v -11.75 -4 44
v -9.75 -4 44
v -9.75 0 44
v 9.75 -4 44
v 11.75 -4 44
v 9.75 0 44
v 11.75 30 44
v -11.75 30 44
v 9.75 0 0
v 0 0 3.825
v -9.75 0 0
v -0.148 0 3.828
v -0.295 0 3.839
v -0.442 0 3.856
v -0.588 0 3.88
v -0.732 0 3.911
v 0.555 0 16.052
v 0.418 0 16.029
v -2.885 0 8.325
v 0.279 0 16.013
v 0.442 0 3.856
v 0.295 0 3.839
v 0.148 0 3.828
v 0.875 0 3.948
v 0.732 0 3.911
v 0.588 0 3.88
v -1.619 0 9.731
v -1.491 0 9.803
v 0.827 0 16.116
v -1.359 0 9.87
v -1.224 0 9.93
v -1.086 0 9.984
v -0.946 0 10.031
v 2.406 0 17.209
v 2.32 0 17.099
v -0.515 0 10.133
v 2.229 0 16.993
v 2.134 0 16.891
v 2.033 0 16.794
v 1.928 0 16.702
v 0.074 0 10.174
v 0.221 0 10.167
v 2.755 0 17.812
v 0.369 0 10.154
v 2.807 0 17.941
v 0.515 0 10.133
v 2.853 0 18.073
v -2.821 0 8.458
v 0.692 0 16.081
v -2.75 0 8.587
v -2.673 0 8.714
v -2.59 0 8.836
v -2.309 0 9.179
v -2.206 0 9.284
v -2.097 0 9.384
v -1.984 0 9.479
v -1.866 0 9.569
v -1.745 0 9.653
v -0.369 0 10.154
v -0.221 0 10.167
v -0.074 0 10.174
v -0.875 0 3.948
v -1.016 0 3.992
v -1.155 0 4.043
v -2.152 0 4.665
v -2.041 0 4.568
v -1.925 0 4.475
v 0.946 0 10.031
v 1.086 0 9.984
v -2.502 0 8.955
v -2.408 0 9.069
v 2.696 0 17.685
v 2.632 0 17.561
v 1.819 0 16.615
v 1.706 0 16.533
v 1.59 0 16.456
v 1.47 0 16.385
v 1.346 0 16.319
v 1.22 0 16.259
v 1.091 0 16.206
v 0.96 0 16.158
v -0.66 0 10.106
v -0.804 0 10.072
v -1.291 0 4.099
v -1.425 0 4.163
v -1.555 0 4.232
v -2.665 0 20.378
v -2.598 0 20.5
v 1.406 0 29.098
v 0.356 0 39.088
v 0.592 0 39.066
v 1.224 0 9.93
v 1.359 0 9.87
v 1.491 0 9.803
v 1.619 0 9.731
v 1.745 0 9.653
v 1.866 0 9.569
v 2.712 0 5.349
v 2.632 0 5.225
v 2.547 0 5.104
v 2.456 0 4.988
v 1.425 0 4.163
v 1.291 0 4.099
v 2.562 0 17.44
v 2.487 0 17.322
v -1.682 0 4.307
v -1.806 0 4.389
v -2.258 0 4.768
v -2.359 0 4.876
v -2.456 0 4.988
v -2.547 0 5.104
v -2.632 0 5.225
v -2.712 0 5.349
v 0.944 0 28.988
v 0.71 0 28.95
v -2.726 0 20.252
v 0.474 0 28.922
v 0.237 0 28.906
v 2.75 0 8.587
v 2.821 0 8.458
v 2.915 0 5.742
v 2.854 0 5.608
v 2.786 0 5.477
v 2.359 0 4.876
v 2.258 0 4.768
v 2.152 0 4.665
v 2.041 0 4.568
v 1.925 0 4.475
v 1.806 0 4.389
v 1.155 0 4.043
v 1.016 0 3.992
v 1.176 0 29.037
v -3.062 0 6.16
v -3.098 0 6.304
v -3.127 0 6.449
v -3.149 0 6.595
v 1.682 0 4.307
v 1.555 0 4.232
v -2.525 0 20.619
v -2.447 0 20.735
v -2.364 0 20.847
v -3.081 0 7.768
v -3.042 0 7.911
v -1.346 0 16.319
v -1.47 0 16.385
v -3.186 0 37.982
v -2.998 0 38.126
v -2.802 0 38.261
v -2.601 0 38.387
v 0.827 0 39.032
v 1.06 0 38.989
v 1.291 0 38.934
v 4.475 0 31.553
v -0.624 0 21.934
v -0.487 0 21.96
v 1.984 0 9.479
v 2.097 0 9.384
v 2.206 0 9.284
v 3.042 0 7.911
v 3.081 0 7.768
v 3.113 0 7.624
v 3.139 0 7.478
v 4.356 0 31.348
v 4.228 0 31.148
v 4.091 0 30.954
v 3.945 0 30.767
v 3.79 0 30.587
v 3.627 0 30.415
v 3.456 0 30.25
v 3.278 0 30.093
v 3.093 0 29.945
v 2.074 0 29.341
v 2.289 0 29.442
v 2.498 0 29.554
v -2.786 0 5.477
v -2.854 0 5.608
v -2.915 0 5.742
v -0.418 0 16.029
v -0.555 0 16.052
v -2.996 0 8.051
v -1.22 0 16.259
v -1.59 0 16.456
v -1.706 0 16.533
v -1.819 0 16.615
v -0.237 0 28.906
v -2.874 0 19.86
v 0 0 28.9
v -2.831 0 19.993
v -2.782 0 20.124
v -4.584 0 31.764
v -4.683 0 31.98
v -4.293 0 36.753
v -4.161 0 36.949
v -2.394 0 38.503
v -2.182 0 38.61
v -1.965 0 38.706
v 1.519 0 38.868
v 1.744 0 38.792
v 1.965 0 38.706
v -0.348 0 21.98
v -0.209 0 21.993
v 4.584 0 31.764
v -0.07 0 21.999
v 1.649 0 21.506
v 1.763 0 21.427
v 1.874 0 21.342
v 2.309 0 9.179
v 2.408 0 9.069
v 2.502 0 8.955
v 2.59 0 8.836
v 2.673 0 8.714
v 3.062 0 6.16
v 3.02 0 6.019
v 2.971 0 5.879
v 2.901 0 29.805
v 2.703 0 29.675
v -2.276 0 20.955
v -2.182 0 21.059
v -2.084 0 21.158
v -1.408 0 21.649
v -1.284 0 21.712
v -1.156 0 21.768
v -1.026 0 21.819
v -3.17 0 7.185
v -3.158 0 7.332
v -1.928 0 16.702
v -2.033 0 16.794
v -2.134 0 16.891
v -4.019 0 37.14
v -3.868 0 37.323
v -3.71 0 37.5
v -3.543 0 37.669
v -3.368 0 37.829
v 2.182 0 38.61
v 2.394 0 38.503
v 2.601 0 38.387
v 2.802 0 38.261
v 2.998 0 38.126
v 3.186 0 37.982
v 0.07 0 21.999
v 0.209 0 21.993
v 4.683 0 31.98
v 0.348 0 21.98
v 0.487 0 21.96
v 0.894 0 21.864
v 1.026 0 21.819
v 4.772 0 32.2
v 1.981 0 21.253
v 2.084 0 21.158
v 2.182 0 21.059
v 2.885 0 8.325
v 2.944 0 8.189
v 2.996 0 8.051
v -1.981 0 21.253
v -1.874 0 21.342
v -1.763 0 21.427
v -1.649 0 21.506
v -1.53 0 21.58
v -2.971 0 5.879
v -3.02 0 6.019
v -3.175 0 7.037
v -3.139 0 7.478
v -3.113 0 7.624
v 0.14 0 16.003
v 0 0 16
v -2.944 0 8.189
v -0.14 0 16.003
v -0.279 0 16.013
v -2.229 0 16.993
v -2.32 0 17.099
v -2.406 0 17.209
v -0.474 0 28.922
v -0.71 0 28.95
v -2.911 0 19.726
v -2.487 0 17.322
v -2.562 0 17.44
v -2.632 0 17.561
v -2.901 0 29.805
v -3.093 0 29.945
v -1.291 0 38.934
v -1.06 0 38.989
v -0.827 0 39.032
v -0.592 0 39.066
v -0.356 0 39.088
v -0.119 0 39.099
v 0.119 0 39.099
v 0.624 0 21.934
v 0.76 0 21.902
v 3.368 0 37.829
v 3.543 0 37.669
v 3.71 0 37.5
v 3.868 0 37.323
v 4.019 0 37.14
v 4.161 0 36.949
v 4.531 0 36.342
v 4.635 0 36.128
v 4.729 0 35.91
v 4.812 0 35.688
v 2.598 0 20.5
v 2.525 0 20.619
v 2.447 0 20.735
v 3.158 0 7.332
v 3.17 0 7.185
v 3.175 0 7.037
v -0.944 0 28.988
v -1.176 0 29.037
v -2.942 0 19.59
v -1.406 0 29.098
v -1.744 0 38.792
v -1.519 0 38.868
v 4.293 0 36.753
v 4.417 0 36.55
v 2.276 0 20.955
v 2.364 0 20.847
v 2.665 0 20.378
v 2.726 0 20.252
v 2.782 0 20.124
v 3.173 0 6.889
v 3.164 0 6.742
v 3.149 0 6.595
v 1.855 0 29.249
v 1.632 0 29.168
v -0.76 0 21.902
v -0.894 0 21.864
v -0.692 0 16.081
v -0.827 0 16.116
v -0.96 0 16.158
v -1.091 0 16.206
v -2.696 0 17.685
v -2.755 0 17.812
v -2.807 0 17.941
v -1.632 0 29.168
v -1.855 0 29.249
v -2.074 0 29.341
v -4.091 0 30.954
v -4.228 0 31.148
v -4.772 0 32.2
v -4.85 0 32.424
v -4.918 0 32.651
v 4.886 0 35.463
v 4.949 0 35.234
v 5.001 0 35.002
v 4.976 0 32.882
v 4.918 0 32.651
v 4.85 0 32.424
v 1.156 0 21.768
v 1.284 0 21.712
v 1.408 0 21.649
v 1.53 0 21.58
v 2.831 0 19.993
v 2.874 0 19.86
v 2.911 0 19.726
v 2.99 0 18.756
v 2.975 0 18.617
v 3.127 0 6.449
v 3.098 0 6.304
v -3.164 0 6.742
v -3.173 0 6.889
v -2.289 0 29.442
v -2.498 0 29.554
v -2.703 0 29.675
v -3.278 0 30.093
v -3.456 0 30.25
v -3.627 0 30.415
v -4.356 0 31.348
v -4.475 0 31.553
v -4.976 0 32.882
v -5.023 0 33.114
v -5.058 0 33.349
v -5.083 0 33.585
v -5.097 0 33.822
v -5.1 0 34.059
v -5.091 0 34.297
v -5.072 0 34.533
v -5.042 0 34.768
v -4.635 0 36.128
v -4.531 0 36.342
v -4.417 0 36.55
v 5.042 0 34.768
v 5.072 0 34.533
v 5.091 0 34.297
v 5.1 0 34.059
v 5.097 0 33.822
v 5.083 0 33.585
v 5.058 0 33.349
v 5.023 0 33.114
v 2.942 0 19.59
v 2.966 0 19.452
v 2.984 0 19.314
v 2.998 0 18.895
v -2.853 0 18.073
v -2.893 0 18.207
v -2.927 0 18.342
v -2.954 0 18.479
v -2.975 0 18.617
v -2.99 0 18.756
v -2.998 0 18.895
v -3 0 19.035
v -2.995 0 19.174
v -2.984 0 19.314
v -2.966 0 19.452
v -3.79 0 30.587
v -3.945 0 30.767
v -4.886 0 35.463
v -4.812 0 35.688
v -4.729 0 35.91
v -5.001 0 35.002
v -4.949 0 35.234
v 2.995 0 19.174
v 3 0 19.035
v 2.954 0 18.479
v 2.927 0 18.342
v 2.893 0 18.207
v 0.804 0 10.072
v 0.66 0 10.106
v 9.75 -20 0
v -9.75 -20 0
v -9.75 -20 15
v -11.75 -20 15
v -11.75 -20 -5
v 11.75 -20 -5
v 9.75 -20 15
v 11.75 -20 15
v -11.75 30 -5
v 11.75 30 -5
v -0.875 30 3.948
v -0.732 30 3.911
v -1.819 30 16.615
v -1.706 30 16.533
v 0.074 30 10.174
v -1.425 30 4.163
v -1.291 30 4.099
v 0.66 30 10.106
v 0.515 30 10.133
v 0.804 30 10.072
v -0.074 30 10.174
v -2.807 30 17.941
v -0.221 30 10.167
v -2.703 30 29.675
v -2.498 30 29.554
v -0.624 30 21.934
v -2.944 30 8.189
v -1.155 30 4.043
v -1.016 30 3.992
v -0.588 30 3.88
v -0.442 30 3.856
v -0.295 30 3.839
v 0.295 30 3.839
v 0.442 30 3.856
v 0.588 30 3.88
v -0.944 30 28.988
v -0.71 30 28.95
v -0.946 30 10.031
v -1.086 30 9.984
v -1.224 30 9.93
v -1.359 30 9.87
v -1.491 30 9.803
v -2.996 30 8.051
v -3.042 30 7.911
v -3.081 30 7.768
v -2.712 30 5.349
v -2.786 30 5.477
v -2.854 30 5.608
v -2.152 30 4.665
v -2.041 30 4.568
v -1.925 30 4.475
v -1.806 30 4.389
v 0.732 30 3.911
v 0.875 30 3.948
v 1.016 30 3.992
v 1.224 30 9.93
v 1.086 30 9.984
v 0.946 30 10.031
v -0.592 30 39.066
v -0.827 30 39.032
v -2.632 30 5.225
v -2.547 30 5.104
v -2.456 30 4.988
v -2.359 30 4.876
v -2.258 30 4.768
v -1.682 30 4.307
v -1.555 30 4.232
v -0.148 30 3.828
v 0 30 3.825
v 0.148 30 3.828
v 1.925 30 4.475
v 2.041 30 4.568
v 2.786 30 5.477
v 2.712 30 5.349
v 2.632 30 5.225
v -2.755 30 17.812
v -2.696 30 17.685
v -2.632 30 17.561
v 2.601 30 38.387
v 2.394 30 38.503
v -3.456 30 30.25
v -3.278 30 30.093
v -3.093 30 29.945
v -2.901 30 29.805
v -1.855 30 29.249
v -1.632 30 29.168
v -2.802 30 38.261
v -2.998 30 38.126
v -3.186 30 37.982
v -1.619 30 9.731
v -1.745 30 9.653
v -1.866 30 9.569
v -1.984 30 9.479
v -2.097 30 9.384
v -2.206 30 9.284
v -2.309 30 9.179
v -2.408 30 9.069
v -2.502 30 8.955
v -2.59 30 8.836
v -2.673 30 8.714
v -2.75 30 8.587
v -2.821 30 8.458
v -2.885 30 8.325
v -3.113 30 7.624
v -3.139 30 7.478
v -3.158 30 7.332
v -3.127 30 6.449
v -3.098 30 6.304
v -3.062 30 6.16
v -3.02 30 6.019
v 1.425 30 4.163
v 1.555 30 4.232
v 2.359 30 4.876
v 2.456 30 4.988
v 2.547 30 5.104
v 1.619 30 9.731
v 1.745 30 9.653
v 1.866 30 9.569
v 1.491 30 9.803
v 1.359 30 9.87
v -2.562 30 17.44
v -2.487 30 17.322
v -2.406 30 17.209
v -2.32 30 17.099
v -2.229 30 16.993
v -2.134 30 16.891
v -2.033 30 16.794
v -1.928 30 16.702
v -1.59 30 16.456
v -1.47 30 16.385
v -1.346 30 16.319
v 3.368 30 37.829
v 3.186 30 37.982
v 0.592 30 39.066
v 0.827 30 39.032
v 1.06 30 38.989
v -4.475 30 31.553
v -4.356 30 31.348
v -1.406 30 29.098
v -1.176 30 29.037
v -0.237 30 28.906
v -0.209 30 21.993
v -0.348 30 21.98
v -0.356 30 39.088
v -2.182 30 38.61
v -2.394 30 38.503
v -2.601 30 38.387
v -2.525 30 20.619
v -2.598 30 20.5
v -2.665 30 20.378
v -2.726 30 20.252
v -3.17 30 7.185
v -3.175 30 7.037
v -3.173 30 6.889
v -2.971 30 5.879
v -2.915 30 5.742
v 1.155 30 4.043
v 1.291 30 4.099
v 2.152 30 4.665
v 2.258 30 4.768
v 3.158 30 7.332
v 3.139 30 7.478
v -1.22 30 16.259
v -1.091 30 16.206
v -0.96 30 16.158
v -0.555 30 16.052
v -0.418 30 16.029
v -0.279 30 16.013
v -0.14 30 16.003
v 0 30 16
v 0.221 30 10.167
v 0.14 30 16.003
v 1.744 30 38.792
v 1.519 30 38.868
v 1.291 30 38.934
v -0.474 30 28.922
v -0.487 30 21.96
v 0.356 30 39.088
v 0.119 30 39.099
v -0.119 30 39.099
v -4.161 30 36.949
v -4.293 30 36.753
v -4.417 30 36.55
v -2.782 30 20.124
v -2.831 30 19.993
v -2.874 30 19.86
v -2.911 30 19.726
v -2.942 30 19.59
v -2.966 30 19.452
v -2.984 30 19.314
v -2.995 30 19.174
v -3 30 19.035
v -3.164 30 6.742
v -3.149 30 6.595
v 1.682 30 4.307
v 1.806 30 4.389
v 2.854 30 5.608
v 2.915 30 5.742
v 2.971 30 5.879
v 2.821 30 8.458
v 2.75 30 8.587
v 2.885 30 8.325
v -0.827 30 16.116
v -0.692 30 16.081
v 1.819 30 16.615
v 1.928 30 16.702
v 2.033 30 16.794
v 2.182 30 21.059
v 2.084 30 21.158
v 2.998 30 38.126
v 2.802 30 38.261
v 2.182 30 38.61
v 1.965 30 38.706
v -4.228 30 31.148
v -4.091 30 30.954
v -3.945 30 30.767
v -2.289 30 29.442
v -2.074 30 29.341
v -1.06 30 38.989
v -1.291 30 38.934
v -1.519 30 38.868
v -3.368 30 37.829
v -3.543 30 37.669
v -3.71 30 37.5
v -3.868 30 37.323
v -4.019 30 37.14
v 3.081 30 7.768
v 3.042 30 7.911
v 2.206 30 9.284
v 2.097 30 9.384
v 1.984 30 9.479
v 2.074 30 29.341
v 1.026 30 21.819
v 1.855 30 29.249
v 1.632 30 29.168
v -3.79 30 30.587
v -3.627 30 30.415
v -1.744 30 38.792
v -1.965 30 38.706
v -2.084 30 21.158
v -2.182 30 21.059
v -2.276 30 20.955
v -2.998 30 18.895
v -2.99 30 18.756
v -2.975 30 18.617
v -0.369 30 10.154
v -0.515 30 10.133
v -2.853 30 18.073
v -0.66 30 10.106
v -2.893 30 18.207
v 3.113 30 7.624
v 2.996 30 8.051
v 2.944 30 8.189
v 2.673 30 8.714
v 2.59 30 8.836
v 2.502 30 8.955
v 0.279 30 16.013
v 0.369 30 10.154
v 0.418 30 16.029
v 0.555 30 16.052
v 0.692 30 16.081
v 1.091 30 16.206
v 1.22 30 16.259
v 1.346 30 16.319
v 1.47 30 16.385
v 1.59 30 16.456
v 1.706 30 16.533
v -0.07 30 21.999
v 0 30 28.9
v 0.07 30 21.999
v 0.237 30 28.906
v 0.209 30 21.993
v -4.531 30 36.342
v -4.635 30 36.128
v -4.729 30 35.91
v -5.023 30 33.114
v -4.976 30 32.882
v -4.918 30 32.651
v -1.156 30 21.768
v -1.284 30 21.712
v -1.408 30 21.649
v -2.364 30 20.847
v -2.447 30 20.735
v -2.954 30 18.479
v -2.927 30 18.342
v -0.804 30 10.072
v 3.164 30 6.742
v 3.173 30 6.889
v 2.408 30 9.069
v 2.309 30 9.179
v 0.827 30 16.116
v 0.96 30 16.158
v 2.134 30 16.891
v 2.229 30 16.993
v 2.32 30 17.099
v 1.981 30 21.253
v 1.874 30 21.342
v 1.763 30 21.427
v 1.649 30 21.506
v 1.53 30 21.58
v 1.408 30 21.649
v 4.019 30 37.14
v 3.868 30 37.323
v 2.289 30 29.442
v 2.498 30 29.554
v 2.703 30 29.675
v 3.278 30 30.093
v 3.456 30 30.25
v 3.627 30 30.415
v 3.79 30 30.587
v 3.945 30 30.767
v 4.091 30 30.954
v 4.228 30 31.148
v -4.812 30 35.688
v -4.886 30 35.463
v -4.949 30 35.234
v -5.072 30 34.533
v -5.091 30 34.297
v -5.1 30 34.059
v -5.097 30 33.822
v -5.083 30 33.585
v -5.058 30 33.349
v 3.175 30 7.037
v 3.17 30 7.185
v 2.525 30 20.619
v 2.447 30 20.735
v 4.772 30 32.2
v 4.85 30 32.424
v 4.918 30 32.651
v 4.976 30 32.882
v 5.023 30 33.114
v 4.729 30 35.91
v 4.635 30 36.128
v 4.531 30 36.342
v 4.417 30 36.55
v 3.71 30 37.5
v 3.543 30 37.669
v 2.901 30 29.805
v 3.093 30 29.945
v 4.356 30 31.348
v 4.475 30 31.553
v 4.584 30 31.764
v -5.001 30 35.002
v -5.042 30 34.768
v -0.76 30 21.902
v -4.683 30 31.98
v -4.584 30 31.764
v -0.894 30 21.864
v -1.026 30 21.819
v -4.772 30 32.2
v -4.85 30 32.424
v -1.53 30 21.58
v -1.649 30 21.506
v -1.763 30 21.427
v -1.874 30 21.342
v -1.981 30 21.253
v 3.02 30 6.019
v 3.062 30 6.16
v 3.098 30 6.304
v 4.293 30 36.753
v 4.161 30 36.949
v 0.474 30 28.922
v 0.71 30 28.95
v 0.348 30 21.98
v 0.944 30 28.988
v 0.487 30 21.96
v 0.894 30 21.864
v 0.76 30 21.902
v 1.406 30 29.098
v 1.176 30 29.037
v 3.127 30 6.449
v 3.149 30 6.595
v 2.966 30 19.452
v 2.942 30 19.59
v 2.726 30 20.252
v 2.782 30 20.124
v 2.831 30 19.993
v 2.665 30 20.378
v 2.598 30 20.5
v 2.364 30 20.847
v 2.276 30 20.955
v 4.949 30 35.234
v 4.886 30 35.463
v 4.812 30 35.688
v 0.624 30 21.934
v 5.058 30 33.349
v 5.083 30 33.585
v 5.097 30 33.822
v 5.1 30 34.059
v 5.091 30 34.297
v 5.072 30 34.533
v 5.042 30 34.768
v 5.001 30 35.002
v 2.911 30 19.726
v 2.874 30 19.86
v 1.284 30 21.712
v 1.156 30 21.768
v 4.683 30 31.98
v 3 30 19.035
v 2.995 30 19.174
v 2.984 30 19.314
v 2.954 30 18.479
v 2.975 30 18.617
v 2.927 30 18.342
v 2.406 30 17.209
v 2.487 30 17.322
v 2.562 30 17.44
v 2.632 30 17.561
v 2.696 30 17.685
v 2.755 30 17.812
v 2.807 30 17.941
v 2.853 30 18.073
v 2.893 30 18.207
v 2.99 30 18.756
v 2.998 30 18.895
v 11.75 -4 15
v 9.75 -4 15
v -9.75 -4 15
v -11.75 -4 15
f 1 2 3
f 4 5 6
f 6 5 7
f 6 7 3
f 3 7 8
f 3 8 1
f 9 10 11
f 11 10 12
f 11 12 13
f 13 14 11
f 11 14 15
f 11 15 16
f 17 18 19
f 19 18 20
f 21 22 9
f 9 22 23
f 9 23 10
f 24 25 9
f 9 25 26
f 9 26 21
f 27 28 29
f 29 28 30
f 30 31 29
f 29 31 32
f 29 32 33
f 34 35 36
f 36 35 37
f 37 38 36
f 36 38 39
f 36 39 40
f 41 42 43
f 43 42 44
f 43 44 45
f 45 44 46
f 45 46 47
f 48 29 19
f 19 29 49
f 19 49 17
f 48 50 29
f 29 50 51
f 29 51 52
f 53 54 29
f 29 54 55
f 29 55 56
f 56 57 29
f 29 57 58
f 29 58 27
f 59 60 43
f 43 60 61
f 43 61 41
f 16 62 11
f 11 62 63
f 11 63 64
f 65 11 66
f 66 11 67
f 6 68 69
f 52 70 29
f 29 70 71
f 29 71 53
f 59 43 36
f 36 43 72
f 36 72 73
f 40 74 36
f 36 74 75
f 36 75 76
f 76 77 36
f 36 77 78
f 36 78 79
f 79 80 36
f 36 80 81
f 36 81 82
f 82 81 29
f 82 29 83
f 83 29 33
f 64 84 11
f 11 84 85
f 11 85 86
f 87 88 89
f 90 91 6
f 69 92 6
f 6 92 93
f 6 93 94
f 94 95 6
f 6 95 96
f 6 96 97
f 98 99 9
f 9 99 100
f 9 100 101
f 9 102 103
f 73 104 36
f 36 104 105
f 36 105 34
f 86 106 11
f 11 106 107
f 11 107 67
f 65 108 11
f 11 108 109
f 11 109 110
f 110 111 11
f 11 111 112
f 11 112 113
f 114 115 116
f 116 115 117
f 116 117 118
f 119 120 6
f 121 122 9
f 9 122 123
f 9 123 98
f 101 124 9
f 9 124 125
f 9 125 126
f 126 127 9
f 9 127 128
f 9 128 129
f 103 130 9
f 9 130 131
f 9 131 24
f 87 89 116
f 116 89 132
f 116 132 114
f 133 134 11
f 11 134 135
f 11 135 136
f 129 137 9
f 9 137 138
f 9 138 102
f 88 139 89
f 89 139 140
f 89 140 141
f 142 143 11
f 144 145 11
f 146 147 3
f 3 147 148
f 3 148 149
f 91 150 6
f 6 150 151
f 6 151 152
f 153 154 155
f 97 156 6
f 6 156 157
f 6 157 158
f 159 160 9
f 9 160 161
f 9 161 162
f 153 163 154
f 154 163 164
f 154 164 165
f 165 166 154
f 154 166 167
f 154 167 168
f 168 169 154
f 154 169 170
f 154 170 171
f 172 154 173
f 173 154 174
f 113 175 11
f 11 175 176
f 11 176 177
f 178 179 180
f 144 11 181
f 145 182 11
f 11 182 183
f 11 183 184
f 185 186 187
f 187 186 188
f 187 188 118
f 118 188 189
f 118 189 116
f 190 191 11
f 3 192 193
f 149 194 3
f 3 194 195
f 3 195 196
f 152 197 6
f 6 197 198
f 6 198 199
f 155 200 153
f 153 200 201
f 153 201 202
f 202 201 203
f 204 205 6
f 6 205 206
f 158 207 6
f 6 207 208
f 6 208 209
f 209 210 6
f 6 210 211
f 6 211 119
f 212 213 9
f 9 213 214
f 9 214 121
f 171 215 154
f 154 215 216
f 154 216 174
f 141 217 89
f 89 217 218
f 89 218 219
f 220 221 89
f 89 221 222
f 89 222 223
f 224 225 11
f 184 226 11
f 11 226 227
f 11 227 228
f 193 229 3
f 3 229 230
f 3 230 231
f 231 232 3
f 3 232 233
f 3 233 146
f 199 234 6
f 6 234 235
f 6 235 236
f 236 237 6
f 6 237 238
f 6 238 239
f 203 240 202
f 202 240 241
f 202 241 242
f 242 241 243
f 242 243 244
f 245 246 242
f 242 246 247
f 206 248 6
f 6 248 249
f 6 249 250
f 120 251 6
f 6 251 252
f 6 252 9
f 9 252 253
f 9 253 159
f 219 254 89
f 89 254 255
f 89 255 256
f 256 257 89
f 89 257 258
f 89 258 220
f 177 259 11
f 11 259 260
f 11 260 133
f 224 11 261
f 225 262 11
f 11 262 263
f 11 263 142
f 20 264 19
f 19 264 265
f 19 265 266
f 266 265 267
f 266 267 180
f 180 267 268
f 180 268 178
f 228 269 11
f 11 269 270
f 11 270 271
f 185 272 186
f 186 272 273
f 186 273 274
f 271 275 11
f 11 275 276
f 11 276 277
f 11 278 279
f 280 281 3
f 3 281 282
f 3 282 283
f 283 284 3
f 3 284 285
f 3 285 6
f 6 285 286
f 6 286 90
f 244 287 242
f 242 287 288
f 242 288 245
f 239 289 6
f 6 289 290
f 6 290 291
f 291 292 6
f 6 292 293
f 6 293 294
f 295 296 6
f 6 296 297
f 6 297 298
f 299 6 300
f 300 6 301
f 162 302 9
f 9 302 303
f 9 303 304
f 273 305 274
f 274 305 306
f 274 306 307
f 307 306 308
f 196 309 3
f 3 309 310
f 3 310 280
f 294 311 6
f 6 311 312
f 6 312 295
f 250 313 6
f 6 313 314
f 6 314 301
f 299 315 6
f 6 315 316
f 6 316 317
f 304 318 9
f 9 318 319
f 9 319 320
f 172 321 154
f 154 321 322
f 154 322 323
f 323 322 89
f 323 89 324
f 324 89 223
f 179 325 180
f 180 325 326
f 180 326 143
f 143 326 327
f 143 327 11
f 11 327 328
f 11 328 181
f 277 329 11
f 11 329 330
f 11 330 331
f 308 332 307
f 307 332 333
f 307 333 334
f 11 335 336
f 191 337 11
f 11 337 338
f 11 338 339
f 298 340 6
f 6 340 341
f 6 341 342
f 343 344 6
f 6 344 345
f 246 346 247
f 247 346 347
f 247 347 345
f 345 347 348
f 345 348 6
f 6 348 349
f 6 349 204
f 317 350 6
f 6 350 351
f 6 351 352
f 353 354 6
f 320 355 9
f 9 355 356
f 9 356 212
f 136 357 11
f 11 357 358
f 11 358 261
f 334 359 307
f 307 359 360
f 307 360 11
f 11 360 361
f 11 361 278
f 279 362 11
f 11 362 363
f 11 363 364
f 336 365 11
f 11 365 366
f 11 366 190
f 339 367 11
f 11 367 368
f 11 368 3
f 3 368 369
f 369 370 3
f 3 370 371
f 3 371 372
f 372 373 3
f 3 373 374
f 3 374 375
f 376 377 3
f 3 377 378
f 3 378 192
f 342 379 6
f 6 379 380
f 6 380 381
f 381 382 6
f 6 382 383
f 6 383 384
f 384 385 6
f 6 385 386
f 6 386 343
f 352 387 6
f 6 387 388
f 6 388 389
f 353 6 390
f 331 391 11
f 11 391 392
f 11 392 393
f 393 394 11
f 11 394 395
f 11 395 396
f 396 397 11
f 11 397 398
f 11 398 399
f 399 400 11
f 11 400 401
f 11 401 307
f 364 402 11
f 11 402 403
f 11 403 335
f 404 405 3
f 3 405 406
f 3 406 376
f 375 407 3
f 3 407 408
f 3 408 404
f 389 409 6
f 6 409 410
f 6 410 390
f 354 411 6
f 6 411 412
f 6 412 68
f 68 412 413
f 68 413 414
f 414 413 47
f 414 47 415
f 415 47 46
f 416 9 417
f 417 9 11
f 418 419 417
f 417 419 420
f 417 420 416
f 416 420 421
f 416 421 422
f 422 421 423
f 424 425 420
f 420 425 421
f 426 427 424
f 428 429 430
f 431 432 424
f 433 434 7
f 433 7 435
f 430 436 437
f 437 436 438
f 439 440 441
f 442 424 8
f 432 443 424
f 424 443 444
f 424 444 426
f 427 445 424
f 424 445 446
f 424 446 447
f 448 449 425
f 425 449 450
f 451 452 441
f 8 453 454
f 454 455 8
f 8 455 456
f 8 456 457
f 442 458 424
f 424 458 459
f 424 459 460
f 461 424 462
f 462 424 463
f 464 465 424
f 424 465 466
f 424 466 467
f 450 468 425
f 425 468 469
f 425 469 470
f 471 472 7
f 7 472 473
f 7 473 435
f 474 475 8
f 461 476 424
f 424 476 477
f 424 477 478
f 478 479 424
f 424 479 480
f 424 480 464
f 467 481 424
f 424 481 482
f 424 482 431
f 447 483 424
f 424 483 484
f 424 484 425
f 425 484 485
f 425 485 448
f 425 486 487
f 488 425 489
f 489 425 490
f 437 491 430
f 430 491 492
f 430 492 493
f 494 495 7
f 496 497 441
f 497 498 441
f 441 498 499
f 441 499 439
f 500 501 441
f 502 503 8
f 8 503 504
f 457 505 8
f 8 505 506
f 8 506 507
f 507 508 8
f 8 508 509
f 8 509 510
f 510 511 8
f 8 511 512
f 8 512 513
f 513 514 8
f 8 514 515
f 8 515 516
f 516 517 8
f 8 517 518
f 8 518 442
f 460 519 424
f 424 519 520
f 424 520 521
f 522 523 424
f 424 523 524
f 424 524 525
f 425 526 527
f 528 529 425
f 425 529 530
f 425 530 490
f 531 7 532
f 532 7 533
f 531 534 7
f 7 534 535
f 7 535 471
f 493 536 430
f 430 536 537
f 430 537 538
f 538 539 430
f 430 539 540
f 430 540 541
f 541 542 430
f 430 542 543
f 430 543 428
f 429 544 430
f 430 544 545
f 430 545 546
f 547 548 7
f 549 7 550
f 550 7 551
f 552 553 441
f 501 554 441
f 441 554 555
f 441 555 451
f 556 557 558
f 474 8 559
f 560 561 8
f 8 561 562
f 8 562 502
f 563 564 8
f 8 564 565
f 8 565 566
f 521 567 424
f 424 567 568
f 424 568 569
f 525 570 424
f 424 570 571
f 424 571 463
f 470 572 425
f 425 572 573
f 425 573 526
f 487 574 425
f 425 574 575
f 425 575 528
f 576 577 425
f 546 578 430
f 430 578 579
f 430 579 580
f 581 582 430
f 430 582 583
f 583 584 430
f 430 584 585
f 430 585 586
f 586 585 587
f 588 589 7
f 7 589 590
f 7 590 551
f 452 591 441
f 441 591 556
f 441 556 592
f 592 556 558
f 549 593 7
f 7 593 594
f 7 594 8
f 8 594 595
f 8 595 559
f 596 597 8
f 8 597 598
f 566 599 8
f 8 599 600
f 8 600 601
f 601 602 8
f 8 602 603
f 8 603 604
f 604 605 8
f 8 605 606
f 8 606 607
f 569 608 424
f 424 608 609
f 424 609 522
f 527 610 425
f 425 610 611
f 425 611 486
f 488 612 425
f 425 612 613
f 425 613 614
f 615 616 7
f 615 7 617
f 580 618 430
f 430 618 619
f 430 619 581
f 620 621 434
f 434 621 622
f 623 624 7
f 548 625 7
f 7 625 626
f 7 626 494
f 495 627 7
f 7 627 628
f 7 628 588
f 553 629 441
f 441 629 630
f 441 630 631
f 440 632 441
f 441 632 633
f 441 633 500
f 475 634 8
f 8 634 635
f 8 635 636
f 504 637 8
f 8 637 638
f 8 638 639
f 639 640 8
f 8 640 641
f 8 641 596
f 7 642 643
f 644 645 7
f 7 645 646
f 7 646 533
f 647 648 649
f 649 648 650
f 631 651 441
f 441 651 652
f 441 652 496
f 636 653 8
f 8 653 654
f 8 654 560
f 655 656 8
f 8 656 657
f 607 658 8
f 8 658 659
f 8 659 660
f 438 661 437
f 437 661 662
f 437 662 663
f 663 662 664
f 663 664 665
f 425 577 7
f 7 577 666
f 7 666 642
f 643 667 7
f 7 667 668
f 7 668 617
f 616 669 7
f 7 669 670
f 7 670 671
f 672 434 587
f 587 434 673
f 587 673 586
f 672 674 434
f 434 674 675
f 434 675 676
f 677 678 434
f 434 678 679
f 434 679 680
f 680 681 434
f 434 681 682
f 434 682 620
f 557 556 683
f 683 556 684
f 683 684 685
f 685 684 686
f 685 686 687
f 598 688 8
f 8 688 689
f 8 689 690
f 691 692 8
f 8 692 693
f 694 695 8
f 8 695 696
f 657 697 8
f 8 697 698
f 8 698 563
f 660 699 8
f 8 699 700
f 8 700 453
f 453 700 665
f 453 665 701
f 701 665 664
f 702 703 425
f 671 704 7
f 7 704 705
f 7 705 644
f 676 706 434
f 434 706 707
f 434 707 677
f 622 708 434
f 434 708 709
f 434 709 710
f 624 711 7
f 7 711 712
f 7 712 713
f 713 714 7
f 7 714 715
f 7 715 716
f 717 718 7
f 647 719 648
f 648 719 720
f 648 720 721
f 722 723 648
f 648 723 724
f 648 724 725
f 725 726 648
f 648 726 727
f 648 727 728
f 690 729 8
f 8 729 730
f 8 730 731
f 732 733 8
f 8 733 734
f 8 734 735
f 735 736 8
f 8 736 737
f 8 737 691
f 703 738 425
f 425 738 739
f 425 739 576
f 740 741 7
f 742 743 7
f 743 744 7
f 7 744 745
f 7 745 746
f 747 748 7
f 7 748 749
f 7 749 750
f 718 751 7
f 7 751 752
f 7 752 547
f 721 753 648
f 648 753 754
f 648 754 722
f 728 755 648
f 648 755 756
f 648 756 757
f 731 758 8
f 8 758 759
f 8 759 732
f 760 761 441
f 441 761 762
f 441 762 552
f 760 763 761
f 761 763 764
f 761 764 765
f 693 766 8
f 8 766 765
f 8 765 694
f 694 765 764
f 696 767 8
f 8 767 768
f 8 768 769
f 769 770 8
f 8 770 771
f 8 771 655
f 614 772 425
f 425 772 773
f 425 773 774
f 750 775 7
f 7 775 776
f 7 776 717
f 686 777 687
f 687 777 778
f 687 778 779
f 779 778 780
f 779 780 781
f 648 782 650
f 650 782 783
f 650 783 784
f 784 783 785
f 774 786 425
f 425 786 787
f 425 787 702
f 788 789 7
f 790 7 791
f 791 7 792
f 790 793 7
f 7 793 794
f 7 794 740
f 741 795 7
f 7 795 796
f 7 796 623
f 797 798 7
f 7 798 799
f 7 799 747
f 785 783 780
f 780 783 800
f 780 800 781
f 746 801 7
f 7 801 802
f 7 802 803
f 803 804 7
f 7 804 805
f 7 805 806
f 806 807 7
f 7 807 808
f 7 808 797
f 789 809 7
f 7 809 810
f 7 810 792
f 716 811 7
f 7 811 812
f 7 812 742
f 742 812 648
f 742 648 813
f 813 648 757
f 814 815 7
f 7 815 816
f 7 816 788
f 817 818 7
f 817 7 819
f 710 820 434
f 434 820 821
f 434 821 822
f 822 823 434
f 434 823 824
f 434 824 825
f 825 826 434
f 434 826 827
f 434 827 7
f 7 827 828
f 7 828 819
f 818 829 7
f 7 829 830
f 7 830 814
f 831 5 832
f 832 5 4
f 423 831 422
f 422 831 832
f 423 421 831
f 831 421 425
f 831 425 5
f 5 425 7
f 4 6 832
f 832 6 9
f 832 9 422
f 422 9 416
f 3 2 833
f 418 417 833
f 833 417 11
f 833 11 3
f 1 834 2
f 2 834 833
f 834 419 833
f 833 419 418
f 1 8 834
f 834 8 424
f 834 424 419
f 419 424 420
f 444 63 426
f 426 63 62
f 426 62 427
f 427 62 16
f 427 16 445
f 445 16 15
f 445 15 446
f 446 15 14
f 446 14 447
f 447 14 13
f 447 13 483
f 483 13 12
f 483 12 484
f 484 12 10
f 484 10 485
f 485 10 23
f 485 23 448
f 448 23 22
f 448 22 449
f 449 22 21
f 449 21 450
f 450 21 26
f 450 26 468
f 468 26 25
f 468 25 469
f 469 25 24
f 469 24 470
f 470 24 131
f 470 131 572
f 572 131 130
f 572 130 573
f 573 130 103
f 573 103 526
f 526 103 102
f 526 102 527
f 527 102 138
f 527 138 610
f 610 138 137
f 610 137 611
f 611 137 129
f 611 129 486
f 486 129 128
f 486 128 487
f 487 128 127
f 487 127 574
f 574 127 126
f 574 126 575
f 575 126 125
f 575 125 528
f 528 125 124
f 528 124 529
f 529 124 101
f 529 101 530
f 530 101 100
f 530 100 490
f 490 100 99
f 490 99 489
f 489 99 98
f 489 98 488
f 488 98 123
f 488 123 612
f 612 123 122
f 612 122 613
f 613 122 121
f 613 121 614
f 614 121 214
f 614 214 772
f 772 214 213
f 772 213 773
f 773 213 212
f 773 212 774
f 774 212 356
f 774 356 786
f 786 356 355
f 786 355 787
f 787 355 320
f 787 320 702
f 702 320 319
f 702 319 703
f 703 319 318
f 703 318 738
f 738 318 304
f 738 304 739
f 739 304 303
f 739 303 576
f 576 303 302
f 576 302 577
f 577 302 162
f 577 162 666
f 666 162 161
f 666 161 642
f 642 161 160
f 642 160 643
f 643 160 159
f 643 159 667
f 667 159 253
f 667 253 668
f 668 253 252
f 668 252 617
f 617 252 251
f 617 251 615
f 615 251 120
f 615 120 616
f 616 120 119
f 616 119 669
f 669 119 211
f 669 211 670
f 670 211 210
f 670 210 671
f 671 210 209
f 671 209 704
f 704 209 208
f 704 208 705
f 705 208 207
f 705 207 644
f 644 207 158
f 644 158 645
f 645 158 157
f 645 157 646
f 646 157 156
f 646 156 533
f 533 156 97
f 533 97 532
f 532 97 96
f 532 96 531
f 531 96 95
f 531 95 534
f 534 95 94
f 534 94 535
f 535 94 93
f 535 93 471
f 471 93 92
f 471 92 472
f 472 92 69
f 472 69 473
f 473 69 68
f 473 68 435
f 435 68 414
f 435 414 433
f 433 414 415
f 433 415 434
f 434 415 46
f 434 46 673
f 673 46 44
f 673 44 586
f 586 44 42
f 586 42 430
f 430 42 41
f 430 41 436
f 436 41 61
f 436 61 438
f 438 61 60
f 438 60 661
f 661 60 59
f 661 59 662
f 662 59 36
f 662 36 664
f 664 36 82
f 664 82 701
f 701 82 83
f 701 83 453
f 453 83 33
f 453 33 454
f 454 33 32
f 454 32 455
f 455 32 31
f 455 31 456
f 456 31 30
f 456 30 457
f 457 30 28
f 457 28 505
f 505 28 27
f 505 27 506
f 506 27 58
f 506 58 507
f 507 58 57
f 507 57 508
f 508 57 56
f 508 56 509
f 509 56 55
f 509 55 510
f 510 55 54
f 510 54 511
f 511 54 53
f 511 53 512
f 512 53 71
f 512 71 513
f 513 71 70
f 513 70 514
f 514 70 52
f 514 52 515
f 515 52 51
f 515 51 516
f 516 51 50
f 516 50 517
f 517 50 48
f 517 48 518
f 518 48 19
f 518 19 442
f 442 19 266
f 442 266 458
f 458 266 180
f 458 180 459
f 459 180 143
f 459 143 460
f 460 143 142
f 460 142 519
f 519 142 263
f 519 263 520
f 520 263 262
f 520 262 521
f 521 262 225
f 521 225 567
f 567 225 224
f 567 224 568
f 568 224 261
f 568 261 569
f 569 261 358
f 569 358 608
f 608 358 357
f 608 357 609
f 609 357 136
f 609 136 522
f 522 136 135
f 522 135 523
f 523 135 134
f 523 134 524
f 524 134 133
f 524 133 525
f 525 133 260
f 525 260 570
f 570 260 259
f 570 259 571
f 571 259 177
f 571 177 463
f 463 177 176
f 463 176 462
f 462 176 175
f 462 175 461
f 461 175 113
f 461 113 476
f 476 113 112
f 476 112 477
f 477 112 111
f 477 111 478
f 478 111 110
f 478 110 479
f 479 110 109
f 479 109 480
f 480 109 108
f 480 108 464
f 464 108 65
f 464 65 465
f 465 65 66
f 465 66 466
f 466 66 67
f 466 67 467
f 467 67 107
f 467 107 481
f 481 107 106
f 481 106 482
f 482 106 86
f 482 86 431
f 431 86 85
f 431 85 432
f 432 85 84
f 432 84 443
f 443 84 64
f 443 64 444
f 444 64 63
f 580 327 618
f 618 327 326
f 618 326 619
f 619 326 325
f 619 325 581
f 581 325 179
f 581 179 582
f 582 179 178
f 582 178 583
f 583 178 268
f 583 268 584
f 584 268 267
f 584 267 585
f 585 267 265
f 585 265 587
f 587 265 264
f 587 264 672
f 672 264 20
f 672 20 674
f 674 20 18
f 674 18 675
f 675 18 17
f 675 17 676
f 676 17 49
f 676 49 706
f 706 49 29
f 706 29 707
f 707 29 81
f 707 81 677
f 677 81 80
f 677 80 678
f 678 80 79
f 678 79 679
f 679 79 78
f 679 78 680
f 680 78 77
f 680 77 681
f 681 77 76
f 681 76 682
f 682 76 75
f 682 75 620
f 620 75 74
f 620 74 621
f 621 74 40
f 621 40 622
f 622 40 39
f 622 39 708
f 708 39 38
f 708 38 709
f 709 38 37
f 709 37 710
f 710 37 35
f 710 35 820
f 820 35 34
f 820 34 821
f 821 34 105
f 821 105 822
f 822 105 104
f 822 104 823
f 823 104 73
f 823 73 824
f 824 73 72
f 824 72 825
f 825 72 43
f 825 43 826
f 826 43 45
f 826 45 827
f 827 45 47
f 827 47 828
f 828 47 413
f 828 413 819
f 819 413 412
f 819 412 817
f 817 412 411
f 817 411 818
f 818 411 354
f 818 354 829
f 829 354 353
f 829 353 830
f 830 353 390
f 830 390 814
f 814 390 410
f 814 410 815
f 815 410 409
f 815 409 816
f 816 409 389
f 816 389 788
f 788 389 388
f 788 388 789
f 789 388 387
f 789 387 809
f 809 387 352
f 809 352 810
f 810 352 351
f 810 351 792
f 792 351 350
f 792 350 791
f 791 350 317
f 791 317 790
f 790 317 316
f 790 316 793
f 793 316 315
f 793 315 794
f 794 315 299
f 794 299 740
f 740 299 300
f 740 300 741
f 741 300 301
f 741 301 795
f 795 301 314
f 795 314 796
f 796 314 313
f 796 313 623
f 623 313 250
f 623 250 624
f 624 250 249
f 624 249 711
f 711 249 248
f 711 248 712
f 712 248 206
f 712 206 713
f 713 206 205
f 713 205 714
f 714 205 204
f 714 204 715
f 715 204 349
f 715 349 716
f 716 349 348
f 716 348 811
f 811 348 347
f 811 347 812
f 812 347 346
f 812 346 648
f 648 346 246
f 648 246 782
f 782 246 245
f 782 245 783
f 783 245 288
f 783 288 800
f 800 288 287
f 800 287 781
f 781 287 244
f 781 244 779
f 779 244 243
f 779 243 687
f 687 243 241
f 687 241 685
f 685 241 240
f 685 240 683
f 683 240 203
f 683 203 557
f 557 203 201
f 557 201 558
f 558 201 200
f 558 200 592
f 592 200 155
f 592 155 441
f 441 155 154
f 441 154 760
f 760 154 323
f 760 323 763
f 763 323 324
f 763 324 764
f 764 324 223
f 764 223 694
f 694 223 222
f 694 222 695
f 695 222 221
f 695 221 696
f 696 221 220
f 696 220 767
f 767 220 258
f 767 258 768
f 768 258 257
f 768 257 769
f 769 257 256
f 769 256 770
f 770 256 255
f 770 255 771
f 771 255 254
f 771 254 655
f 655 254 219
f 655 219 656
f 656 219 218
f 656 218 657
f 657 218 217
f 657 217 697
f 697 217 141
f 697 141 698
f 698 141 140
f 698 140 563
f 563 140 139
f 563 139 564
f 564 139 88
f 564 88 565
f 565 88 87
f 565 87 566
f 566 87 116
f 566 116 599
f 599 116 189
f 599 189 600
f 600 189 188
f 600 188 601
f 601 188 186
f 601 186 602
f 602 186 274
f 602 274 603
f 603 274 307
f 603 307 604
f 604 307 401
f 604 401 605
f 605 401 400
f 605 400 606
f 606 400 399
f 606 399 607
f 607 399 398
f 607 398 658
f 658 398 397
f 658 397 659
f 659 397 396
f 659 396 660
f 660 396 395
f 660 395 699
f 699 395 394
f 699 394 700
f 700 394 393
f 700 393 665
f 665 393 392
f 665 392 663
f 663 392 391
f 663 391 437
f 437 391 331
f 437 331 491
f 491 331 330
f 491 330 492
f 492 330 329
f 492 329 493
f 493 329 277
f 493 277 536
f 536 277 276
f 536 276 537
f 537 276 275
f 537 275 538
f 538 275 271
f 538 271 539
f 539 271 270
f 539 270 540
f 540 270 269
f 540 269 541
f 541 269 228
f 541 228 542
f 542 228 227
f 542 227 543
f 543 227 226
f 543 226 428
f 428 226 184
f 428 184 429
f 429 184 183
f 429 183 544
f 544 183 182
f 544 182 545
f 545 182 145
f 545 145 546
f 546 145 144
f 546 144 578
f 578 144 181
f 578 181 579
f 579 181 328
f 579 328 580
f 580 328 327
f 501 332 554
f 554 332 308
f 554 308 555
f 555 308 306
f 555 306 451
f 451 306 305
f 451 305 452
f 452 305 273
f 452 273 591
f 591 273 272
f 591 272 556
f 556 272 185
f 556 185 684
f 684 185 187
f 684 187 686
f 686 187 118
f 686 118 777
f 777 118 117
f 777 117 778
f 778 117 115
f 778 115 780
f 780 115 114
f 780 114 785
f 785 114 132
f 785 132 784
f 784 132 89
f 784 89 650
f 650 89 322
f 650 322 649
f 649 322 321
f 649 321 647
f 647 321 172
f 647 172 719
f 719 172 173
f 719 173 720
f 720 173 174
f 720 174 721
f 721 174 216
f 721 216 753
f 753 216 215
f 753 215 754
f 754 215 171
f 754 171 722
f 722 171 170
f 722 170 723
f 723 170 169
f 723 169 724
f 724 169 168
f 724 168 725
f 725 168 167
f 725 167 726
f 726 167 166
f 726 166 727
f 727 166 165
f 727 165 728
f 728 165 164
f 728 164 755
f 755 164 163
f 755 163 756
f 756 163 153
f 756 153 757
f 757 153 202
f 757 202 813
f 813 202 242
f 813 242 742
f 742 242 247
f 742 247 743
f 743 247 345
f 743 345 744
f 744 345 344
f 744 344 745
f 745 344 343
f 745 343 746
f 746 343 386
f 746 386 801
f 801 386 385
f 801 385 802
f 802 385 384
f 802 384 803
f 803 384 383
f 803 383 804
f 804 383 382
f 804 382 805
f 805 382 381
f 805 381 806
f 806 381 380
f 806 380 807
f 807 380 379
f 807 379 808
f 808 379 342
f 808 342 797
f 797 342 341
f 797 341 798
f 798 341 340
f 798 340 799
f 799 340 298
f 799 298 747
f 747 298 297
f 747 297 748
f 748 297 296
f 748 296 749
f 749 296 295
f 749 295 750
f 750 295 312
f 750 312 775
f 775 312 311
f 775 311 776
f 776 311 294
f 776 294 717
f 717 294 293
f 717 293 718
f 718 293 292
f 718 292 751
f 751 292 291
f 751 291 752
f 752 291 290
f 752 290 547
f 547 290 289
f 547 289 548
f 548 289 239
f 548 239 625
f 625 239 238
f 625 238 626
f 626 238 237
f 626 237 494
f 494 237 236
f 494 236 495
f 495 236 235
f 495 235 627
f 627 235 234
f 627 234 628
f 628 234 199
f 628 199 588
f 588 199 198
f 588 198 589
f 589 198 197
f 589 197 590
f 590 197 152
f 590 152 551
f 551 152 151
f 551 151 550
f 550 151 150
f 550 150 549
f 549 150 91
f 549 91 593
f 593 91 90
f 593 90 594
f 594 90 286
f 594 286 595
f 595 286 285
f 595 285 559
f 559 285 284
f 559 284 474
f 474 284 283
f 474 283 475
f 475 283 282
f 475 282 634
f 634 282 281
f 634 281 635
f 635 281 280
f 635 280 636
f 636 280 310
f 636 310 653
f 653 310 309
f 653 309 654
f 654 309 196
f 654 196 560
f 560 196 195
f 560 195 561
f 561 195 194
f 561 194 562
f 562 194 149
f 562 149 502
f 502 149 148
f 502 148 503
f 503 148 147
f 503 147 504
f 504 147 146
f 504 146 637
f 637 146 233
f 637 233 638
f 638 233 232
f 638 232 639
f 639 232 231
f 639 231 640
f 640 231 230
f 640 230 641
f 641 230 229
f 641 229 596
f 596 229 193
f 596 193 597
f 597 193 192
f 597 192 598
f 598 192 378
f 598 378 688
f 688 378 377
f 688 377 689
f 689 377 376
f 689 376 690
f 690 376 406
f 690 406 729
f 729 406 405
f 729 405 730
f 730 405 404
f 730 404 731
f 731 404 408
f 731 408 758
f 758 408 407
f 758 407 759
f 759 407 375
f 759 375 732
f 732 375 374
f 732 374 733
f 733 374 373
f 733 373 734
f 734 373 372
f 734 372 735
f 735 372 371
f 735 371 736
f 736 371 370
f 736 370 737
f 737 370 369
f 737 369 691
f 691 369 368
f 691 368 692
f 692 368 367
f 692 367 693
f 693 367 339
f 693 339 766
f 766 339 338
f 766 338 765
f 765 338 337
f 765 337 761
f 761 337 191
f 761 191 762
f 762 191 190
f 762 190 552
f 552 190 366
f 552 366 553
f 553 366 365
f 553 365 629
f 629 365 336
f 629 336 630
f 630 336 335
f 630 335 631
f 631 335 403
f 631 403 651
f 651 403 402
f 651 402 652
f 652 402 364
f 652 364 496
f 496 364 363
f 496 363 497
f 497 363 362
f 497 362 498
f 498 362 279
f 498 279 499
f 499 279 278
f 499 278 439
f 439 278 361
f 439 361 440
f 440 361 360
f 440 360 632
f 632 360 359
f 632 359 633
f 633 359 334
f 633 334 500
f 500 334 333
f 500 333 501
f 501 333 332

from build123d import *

# Parameters (mm, degrees)
BOSS_EXTRUDE1_DEPTH = 9.75
BOSS_EXTRUDE2_DEPTH = 2
SKETCH4_R           = 5.1
SKETCH4_R_2         = 3
SKETCH4_R_3         = 3.175
CUT_EXTRUDE1_DEPTH  = 55.534965848


with BuildPart() as part:
    # Sketch2 → Boss-Extrude1 (new, symmetric)
    with BuildSketch(Plane(origin=(0, 0, 0), x_dir=(0, 0, -1), z_dir=(1, 0, 0))):
        Polygon((-44, 0), (0, 0), (0, -20), (5, -20), (5, 30), (-44, 30), align=None)
    extrude(amount=BOSS_EXTRUDE1_DEPTH, both=True)

    # Sketch3 → Boss-Extrude2 (add)
    with BuildSketch(Plane(origin=(9.75, 0, 0), x_dir=(0, 0, -1), z_dir=(1, 0, 0))):
        Polygon((-44, 30), (-44, -4), (-15, -4), (-15, -20), (5, -20), (5, 30), align=None)
    boss_extrude2 = extrude(amount=BOSS_EXTRUDE2_DEPTH)

    # Mirror1: Boss-Extrude2 across plane
    add(boss_extrude2.mirror(Plane(origin=(0, 0, 0), x_dir=(0, 0, 1), z_dir=(1, 0, 0))))

    # Sketch4 → Cut-Extrude1 (cut, through all)
    with BuildSketch(Plane.XZ):
        with Locations(Location((0, 34, 0), (0, 0, 270))):
            Circle(SKETCH4_R)
        with Locations(Location((0, 19, 0), (0, 0, 270))):
            Circle(SKETCH4_R_2)
        with Locations(Location((0, 7, 0), (0, 0, 270))):
            Circle(SKETCH4_R_3)
    extrude(amount=-CUT_EXTRUDE1_DEPTH, mode=Mode.SUBTRACT)


solid = part.part
